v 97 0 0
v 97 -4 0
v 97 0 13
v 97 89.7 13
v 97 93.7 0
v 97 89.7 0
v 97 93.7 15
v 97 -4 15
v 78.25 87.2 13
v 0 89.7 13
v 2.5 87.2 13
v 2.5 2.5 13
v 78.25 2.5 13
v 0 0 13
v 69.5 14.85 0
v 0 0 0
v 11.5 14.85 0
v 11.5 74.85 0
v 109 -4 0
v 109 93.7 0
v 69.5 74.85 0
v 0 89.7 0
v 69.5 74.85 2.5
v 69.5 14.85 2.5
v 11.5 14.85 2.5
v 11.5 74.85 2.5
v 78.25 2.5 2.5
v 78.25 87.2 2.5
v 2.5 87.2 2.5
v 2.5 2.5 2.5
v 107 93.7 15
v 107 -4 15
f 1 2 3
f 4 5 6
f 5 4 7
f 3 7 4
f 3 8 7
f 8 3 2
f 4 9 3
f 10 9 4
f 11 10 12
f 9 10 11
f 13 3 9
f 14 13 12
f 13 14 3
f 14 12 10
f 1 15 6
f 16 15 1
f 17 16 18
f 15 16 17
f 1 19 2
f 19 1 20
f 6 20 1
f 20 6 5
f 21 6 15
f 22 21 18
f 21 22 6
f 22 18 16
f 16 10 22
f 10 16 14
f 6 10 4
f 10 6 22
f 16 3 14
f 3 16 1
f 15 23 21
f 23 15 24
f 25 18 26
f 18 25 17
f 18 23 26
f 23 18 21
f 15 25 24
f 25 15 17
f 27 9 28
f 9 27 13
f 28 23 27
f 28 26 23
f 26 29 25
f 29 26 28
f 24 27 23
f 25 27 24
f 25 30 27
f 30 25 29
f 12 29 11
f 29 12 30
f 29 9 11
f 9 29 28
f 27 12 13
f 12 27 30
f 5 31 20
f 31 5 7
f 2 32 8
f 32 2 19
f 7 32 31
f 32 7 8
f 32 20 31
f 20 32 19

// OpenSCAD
// It is licensed under the Creative Commons - GNU GPL license.
// © 2022 by Ricardo Espinosa

xCaja=97;
yCaja=89.7;
zCaja=13;
xPest=xCaja+10;
yPest=yCaja+8;
zPest=zCaja+2;
xPasante=58;
yPasante=60;
zPasante=zCaja+2;
espesor=2.5;

difference(){

cube([xCaja,yCaja, zCaja]);

translate([11.5,yCaja/2-yPasante/2,-1])
cube([xPasante,yPasante, zPasante]);

translate([espesor,espesor,espesor])
cube([75.75,yCaja-espesor*2,zCaja ]);

}
CubePoints2 = [
  [ xCaja,  0,  0 ],  //0
  [ xPest+2,  0,  0 ],  //1
  [ xPest+2,  yPest,  0 ],  //2
  [ xCaja,  yPest,  0 ],  //3
  [ xCaja,  0,  zPest ],  //4
  [ xPest,  0,  zPest ],  //5
  [ xPest,  yPest,  zPest ],  //6
  [ xCaja,  yPest,  zPest ]]; //7
  
CubeFaces2 = [
  [0,1,2,3],  // bottom
  [4,5,1,0],  // front
  [7,6,5,4],  // top
  [5,6,2,1],  // right
  [6,7,3,2],  // back
  [7,4,0,3]]; // left
  translate([0,-4,0])
polyhedron( CubePoints2, CubeFaces2 );
